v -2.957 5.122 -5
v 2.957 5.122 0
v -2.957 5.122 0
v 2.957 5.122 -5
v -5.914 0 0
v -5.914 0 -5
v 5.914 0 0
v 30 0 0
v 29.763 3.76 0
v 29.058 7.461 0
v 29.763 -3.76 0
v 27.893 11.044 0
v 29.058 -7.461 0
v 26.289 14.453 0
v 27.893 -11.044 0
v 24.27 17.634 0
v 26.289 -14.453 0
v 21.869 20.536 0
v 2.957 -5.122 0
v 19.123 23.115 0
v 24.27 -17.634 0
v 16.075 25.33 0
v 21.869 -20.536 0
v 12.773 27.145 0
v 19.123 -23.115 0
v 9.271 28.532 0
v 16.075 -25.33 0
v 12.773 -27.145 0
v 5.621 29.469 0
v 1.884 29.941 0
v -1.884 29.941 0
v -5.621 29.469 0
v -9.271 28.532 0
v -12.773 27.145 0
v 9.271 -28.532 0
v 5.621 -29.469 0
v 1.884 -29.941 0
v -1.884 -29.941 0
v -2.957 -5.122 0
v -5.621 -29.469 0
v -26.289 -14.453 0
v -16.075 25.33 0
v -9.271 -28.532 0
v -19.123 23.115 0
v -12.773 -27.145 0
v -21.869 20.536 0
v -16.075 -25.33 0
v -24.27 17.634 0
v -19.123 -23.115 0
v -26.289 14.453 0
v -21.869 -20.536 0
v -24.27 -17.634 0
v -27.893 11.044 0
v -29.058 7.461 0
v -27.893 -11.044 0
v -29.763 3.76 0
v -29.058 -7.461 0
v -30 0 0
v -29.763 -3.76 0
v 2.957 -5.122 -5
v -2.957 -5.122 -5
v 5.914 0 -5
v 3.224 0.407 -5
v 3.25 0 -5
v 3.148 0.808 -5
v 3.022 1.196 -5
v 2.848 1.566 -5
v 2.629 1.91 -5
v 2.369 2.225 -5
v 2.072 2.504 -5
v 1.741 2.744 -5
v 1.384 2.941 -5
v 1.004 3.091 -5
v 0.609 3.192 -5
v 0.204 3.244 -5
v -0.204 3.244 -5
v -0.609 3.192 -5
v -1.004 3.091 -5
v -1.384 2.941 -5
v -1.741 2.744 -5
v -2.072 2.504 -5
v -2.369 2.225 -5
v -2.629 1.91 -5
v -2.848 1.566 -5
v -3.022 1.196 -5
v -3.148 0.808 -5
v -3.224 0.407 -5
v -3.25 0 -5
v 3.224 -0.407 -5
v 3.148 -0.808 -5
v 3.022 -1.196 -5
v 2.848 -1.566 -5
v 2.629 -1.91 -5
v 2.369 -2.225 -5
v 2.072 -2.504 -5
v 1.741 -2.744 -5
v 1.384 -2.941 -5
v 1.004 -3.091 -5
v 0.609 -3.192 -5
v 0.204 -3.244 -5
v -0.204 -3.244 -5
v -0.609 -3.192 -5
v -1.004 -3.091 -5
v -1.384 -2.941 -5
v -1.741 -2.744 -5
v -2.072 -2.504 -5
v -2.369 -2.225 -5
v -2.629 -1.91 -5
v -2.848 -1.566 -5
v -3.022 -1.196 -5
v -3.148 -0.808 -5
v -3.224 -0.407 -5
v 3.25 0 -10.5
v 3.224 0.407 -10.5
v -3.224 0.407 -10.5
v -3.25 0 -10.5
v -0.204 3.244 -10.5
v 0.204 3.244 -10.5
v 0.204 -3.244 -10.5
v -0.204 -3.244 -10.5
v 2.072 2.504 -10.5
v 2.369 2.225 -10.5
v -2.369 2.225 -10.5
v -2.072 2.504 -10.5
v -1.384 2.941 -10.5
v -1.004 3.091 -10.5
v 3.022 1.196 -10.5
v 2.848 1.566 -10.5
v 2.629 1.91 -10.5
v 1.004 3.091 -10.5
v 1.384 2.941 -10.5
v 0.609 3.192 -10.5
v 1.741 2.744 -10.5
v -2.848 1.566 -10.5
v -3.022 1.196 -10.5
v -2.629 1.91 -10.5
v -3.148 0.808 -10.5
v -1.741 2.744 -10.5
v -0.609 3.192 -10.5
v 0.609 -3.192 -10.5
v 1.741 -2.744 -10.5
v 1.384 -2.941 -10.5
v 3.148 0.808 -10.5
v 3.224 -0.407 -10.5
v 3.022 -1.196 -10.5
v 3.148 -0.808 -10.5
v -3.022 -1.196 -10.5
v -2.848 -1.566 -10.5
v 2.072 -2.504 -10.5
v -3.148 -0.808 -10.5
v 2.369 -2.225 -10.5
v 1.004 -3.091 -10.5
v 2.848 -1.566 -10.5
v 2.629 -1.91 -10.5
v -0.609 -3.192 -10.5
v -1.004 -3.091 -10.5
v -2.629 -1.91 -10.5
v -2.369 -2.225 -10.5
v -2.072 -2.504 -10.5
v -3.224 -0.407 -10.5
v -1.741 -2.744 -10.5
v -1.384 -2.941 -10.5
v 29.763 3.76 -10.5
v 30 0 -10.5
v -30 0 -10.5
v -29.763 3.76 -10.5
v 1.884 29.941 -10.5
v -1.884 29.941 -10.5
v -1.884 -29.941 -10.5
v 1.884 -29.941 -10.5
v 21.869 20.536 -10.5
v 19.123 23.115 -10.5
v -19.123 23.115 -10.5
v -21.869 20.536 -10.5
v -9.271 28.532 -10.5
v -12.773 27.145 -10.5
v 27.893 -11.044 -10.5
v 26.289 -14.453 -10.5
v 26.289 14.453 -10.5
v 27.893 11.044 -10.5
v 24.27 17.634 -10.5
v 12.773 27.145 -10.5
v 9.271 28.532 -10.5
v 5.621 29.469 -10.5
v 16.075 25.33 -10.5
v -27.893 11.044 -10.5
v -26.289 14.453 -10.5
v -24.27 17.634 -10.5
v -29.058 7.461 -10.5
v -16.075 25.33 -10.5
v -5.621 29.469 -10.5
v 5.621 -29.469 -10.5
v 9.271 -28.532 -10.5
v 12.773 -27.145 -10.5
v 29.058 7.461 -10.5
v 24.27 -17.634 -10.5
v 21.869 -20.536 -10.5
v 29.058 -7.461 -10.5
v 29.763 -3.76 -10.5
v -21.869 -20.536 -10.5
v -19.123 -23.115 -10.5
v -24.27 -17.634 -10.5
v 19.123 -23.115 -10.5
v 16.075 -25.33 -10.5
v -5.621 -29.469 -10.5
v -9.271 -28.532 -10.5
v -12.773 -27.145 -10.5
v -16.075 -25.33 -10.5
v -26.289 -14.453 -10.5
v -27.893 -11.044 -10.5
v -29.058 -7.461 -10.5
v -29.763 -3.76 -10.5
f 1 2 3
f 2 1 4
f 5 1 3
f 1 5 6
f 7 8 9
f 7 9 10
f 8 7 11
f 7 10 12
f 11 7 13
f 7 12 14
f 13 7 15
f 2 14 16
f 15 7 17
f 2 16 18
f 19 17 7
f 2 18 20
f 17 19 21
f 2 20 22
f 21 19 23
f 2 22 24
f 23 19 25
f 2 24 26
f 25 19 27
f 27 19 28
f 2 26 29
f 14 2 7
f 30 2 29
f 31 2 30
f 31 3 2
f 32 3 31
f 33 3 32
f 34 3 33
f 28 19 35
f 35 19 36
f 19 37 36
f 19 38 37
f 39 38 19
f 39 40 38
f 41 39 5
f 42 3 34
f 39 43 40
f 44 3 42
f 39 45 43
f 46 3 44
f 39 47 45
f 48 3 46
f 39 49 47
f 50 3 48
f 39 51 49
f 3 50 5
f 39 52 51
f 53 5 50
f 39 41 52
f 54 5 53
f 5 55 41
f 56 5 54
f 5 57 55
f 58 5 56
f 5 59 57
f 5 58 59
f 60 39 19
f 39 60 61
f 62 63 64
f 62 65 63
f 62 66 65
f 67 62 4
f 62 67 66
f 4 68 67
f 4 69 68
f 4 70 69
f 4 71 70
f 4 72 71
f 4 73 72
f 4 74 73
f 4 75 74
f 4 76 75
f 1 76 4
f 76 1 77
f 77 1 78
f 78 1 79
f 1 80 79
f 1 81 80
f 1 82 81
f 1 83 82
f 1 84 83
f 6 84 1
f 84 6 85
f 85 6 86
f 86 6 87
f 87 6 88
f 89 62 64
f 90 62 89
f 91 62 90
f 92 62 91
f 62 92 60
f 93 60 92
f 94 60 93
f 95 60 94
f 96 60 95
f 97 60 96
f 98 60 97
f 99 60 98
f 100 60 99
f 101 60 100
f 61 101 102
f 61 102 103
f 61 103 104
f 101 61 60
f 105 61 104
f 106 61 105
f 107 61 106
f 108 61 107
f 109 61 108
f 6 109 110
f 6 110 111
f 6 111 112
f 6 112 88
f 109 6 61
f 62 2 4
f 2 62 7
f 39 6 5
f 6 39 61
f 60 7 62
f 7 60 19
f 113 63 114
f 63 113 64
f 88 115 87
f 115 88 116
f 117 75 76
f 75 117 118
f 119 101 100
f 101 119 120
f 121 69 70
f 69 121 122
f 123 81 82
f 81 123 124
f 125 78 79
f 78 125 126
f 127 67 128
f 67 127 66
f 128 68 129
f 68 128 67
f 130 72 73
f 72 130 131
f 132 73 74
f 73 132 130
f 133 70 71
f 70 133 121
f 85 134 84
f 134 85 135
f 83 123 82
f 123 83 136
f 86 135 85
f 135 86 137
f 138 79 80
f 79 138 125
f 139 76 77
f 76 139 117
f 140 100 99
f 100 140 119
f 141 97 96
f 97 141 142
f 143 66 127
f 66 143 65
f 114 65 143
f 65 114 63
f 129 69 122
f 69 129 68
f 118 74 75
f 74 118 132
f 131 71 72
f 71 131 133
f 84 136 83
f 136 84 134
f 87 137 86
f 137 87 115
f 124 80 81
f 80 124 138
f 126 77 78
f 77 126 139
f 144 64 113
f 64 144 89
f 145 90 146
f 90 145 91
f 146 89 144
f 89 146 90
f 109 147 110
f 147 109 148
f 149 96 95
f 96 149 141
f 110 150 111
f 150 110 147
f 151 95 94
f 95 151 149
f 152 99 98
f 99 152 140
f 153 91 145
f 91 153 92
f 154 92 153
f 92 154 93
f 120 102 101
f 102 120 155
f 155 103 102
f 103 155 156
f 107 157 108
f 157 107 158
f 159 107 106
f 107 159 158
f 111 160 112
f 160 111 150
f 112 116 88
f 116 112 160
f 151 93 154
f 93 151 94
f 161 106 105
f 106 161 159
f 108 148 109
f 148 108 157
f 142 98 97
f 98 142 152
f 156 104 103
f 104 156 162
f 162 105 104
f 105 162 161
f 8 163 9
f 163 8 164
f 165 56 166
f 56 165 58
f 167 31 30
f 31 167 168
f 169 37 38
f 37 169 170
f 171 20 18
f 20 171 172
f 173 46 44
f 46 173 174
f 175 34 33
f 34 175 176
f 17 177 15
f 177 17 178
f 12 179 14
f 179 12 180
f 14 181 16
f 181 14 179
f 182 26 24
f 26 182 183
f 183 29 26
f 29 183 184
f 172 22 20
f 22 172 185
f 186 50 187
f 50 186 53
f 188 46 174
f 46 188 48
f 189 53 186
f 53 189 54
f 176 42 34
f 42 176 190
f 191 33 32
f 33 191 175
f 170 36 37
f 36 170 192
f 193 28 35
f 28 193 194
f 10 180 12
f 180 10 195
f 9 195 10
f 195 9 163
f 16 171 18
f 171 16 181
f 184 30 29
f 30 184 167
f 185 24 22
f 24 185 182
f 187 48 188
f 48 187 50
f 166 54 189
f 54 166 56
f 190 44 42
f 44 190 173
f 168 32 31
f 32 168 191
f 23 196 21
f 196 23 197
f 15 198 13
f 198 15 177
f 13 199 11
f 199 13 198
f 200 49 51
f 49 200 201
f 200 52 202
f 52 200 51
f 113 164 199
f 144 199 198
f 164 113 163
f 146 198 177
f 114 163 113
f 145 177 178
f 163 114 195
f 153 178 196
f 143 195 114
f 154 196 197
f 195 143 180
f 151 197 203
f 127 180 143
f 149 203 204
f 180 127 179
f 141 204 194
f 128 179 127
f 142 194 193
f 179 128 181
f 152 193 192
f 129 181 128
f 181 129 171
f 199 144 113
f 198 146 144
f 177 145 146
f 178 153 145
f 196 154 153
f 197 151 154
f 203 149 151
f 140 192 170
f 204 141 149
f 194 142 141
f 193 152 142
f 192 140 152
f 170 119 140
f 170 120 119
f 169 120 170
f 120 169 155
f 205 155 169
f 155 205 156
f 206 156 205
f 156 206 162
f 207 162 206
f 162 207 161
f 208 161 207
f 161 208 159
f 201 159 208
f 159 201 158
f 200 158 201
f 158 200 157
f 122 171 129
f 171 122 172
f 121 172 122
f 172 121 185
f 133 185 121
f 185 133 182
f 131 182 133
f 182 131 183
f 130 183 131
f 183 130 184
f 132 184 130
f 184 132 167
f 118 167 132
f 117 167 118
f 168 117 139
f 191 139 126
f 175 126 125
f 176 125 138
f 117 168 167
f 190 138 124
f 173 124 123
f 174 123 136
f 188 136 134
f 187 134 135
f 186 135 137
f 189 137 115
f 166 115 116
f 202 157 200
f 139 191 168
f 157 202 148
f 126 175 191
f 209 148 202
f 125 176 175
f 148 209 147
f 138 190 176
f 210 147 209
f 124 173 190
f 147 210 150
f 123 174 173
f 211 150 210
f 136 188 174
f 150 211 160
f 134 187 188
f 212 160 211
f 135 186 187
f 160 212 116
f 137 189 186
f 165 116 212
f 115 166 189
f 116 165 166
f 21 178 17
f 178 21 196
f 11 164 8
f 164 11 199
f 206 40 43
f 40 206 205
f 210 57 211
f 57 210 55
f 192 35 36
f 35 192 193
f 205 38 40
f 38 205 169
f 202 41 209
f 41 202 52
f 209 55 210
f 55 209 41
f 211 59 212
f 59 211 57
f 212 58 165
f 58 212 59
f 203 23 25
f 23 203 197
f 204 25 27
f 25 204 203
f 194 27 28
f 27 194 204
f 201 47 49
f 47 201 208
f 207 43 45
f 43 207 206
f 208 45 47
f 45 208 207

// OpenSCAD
$fn = 50;


difference() {
	union() {
		translate(v = [0, 0, -10.5000000000]) {
			cylinder(h = 10.5000000000, r = 30.0000000000);
		}
	}
	union() {
		translate(v = [0, 0, 0]) {
			rotate(a = [0, 0, 0]) {
				difference() {
					union() {
						translate(v = [0, 0, -5]) {
							#linear_extrude(height = 5) {
								polygon(points = [[5.9142500000, 0.0000000000], [2.9571250000, 5.1218907443], [-2.9571250000, 5.1218907443], [-5.9142500000, 0.0000000000], [-2.9571250000, -5.1218907443], [2.9571250000, -5.1218907443]]);
							}
						}
					}
					union();
				}
			}
		}
		#translate(v = [0, 0, -100.0000000000]) {
			cylinder(h = 200, r = 3.2500000000);
		}
	}
}
